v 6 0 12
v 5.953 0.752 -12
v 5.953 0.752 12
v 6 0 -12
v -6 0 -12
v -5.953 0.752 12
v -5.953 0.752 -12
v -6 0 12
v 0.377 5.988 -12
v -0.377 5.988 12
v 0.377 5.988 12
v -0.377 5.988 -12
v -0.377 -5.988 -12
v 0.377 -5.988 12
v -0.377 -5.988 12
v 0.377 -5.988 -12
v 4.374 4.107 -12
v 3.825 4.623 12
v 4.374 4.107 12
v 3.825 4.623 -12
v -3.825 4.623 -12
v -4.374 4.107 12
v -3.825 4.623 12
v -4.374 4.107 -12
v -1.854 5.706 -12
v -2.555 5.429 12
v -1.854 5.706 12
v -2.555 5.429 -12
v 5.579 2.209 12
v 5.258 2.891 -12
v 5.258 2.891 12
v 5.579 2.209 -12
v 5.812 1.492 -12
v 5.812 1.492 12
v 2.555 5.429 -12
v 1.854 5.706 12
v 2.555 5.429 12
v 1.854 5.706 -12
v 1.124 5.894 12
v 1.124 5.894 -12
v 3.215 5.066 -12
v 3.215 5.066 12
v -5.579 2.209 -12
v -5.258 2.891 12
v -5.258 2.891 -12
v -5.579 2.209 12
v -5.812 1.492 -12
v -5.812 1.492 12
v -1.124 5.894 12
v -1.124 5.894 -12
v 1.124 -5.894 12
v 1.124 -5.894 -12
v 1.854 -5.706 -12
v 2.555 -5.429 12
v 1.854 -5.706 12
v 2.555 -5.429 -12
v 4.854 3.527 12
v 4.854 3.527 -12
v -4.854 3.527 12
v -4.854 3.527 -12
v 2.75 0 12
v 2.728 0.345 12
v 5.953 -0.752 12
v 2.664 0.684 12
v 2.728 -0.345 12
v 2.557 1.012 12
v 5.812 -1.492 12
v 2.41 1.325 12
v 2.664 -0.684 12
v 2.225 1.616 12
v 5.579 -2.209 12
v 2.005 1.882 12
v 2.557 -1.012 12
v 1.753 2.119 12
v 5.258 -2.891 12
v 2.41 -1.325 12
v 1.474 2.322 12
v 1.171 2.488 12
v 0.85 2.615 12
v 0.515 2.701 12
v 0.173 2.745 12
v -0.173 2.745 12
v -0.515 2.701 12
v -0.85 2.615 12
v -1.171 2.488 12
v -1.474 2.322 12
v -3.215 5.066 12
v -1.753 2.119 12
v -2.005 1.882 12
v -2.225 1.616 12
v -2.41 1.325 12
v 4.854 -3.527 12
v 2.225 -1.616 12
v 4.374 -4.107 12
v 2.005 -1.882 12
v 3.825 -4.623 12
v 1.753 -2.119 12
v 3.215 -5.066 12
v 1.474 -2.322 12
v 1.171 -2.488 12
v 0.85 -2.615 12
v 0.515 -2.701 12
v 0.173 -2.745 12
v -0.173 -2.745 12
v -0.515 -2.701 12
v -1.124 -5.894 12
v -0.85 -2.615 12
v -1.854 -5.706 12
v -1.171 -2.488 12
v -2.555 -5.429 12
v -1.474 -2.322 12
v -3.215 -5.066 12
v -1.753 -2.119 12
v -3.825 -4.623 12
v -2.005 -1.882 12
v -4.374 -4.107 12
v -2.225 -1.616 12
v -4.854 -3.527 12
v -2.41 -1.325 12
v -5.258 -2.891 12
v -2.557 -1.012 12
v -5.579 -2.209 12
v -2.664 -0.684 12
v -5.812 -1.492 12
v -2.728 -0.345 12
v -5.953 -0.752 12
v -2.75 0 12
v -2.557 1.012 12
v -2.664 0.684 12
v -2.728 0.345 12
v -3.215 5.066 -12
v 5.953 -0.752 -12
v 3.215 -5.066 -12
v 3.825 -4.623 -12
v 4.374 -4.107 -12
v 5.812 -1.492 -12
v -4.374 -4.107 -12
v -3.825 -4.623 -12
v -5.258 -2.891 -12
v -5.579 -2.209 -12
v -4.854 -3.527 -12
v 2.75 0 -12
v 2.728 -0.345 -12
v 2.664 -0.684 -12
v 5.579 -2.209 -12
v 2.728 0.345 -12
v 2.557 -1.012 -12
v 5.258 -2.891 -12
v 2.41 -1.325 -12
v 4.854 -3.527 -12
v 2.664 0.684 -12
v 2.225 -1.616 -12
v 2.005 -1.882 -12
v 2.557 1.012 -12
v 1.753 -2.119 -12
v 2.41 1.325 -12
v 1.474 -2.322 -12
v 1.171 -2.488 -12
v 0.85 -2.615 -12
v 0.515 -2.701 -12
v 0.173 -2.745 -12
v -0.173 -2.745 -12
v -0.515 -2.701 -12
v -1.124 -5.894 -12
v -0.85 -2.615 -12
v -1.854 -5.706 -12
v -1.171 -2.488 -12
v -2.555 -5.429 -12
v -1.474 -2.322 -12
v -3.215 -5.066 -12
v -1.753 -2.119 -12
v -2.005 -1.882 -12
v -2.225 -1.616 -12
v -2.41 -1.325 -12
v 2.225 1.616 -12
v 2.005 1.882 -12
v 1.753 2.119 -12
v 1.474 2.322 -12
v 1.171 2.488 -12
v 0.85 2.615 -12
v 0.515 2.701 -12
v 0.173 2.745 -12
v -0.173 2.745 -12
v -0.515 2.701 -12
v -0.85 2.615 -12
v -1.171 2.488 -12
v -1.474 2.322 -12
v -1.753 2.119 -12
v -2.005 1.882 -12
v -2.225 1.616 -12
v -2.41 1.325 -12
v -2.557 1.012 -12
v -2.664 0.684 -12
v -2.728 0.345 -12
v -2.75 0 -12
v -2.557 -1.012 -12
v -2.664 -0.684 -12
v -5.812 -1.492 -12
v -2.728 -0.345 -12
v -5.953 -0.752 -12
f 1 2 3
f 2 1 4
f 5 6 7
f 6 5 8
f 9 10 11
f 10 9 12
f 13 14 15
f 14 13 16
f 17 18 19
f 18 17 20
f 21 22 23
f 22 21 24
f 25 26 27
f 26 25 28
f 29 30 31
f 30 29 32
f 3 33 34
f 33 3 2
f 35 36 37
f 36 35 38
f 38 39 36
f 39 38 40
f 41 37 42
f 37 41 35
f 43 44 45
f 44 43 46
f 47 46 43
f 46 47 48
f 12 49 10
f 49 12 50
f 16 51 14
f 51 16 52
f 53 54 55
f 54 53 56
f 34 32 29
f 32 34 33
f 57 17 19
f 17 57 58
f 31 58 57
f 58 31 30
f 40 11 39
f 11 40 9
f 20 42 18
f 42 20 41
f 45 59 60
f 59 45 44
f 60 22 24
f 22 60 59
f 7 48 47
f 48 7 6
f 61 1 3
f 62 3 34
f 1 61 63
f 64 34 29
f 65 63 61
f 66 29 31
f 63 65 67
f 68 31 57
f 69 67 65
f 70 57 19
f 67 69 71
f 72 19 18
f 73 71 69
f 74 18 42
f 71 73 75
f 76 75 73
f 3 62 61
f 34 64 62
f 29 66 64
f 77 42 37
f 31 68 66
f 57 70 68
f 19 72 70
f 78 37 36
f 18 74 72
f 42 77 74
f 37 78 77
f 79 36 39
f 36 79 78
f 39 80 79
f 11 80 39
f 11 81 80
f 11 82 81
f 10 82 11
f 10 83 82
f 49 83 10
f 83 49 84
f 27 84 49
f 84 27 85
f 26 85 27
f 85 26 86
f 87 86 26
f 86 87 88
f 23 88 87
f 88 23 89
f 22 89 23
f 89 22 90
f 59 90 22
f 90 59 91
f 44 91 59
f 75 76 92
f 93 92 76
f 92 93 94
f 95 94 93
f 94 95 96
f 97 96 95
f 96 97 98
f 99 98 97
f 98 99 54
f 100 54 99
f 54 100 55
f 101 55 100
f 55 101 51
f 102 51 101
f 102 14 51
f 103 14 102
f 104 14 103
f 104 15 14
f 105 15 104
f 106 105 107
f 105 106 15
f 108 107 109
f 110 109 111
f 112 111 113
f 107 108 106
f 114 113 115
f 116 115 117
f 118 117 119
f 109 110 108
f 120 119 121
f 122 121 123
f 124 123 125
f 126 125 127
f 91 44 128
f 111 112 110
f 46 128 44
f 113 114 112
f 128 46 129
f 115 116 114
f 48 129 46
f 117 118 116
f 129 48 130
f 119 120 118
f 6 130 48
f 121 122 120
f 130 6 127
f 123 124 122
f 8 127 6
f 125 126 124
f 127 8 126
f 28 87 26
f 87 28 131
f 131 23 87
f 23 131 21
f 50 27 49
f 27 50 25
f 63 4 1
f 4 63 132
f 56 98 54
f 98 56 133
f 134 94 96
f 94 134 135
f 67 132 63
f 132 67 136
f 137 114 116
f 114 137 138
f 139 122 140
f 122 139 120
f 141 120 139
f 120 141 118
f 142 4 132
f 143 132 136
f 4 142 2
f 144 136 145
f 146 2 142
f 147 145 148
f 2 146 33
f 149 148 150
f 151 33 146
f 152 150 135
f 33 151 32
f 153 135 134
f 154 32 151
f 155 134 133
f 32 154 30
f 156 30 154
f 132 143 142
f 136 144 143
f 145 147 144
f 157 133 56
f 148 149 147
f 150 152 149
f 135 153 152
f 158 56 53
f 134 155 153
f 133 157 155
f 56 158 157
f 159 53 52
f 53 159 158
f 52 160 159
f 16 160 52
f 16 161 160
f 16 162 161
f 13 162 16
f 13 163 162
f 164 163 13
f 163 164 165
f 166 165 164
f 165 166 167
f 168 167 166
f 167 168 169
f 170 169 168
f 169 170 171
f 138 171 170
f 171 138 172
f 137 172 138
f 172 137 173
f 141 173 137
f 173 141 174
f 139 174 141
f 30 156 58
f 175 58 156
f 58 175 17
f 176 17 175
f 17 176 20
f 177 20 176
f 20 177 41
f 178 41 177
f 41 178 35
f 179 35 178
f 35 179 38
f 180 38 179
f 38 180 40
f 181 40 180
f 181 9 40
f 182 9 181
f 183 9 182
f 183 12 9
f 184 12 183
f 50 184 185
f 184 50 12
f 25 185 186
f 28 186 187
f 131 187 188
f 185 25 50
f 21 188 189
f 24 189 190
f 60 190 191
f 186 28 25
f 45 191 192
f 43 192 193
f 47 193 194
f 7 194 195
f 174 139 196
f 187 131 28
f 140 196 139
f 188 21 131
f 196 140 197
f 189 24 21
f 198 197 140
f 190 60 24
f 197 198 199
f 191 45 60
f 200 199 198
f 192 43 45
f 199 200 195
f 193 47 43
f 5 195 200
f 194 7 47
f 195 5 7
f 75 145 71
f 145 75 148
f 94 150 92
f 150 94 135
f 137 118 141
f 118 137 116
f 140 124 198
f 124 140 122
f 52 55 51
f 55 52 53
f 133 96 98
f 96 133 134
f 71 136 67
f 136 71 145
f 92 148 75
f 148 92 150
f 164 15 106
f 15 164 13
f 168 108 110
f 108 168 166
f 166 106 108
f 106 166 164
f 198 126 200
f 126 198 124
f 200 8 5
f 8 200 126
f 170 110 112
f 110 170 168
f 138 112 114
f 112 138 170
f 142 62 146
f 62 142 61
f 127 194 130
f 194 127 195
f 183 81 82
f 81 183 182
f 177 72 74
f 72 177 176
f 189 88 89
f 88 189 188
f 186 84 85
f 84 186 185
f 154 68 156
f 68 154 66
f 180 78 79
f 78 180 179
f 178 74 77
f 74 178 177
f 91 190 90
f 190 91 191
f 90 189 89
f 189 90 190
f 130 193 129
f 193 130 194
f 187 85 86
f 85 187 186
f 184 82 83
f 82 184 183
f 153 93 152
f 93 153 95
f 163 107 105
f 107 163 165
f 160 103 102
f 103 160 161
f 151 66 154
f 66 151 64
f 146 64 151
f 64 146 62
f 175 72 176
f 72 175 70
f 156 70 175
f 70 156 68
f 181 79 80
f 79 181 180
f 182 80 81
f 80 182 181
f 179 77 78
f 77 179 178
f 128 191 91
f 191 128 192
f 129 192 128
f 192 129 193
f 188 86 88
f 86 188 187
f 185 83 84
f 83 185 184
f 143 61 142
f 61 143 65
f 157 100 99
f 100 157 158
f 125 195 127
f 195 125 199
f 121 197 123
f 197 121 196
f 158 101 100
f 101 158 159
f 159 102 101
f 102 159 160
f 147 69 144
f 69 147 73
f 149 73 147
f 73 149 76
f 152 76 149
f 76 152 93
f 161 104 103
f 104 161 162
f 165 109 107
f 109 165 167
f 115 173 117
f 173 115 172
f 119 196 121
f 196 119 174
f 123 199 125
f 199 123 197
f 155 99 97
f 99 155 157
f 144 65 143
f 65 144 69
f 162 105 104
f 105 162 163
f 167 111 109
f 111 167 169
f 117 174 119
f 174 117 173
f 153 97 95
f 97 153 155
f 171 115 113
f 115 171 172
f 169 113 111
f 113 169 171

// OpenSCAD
$fn = 50;


difference() {
	union() {
		translate(v = [0, 0, -12.0000000000]) {
			cylinder(h = 24, r = 6.0000000000);
		}
	}
	union() {
		translate(v = [0, 0, -100.0000000000]) {
			cylinder(h = 200, r = 2.7500000000);
		}
	}
}
